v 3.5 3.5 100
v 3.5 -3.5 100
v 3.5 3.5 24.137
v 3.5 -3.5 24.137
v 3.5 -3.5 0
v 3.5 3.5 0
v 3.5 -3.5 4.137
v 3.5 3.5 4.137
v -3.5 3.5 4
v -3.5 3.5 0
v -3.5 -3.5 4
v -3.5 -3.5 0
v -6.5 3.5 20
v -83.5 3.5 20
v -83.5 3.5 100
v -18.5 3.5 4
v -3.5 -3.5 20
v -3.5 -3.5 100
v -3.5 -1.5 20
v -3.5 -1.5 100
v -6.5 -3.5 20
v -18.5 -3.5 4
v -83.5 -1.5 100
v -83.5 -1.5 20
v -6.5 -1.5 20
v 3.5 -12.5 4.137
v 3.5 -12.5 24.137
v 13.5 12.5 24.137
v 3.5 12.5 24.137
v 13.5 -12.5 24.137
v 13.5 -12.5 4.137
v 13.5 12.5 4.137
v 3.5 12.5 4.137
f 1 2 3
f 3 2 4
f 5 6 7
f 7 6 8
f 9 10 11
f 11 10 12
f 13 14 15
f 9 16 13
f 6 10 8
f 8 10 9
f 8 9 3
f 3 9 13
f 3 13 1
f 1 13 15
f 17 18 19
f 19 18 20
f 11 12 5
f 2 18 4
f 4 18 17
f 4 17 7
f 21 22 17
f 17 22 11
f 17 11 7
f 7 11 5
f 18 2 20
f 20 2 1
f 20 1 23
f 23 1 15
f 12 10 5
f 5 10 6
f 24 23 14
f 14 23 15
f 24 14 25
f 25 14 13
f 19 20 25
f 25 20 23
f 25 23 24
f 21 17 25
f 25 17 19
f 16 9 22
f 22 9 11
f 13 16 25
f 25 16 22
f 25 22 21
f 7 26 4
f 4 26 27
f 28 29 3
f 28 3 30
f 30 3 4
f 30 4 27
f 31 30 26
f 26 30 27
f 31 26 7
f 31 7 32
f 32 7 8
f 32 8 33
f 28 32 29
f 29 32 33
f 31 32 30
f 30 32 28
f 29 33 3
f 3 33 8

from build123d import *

# Parameters (mm, degrees)
SKETCH1_W           = 7
SKETCH1_H           = 7
BOSS_EXTRUDE1_DEPTH = 100
SKETCH3_W           = 80
SKETCH3_H           = 80
BOSS_EXTRUDE2_DEPTH = 5
BOSS_EXTRUDE5_DEPTH = 7
SKETCH11_W          = 20
SKETCH11_H          = 25
BOSS_EXTRUDE6_DEPTH = 10


with BuildPart() as part:
    # Sketch1 → Boss-Extrude1 (new body)
    with BuildSketch(Plane.XY):
        Rectangle(SKETCH1_W, SKETCH1_H)
    extrude(amount=BOSS_EXTRUDE1_DEPTH)

    # Sketch3 → Boss-Extrude2 (add)
    with BuildSketch(Plane(origin=(0, 3.5, 0), x_dir=(1, 0, 0), z_dir=(0, 1, 0))):
        with Locations((-43.5, -60)):
            Rectangle(SKETCH3_W, SKETCH3_H)
    extrude(amount=-BOSS_EXTRUDE2_DEPTH)

    # Sketch8 → Boss-Extrude5 (add)
    with BuildSketch(Plane.XZ.offset(3.5)):
        Polygon((-3.5, 20), (-6.5, 20), (-18.5, 4), (-3.5, 4), align=None)
    extrude(amount=-BOSS_EXTRUDE5_DEPTH)

    # Sketch11 → Boss-Extrude6 (add)
    with BuildSketch(Plane(origin=(3.5, 0, 0), x_dir=(0, 0, -1), z_dir=(1, 0, 0))):
        with Locations((-14.137320527, 0)):
            Rectangle(SKETCH11_W, SKETCH11_H)
    extrude(amount=BOSS_EXTRUDE6_DEPTH)


solid = part.part
